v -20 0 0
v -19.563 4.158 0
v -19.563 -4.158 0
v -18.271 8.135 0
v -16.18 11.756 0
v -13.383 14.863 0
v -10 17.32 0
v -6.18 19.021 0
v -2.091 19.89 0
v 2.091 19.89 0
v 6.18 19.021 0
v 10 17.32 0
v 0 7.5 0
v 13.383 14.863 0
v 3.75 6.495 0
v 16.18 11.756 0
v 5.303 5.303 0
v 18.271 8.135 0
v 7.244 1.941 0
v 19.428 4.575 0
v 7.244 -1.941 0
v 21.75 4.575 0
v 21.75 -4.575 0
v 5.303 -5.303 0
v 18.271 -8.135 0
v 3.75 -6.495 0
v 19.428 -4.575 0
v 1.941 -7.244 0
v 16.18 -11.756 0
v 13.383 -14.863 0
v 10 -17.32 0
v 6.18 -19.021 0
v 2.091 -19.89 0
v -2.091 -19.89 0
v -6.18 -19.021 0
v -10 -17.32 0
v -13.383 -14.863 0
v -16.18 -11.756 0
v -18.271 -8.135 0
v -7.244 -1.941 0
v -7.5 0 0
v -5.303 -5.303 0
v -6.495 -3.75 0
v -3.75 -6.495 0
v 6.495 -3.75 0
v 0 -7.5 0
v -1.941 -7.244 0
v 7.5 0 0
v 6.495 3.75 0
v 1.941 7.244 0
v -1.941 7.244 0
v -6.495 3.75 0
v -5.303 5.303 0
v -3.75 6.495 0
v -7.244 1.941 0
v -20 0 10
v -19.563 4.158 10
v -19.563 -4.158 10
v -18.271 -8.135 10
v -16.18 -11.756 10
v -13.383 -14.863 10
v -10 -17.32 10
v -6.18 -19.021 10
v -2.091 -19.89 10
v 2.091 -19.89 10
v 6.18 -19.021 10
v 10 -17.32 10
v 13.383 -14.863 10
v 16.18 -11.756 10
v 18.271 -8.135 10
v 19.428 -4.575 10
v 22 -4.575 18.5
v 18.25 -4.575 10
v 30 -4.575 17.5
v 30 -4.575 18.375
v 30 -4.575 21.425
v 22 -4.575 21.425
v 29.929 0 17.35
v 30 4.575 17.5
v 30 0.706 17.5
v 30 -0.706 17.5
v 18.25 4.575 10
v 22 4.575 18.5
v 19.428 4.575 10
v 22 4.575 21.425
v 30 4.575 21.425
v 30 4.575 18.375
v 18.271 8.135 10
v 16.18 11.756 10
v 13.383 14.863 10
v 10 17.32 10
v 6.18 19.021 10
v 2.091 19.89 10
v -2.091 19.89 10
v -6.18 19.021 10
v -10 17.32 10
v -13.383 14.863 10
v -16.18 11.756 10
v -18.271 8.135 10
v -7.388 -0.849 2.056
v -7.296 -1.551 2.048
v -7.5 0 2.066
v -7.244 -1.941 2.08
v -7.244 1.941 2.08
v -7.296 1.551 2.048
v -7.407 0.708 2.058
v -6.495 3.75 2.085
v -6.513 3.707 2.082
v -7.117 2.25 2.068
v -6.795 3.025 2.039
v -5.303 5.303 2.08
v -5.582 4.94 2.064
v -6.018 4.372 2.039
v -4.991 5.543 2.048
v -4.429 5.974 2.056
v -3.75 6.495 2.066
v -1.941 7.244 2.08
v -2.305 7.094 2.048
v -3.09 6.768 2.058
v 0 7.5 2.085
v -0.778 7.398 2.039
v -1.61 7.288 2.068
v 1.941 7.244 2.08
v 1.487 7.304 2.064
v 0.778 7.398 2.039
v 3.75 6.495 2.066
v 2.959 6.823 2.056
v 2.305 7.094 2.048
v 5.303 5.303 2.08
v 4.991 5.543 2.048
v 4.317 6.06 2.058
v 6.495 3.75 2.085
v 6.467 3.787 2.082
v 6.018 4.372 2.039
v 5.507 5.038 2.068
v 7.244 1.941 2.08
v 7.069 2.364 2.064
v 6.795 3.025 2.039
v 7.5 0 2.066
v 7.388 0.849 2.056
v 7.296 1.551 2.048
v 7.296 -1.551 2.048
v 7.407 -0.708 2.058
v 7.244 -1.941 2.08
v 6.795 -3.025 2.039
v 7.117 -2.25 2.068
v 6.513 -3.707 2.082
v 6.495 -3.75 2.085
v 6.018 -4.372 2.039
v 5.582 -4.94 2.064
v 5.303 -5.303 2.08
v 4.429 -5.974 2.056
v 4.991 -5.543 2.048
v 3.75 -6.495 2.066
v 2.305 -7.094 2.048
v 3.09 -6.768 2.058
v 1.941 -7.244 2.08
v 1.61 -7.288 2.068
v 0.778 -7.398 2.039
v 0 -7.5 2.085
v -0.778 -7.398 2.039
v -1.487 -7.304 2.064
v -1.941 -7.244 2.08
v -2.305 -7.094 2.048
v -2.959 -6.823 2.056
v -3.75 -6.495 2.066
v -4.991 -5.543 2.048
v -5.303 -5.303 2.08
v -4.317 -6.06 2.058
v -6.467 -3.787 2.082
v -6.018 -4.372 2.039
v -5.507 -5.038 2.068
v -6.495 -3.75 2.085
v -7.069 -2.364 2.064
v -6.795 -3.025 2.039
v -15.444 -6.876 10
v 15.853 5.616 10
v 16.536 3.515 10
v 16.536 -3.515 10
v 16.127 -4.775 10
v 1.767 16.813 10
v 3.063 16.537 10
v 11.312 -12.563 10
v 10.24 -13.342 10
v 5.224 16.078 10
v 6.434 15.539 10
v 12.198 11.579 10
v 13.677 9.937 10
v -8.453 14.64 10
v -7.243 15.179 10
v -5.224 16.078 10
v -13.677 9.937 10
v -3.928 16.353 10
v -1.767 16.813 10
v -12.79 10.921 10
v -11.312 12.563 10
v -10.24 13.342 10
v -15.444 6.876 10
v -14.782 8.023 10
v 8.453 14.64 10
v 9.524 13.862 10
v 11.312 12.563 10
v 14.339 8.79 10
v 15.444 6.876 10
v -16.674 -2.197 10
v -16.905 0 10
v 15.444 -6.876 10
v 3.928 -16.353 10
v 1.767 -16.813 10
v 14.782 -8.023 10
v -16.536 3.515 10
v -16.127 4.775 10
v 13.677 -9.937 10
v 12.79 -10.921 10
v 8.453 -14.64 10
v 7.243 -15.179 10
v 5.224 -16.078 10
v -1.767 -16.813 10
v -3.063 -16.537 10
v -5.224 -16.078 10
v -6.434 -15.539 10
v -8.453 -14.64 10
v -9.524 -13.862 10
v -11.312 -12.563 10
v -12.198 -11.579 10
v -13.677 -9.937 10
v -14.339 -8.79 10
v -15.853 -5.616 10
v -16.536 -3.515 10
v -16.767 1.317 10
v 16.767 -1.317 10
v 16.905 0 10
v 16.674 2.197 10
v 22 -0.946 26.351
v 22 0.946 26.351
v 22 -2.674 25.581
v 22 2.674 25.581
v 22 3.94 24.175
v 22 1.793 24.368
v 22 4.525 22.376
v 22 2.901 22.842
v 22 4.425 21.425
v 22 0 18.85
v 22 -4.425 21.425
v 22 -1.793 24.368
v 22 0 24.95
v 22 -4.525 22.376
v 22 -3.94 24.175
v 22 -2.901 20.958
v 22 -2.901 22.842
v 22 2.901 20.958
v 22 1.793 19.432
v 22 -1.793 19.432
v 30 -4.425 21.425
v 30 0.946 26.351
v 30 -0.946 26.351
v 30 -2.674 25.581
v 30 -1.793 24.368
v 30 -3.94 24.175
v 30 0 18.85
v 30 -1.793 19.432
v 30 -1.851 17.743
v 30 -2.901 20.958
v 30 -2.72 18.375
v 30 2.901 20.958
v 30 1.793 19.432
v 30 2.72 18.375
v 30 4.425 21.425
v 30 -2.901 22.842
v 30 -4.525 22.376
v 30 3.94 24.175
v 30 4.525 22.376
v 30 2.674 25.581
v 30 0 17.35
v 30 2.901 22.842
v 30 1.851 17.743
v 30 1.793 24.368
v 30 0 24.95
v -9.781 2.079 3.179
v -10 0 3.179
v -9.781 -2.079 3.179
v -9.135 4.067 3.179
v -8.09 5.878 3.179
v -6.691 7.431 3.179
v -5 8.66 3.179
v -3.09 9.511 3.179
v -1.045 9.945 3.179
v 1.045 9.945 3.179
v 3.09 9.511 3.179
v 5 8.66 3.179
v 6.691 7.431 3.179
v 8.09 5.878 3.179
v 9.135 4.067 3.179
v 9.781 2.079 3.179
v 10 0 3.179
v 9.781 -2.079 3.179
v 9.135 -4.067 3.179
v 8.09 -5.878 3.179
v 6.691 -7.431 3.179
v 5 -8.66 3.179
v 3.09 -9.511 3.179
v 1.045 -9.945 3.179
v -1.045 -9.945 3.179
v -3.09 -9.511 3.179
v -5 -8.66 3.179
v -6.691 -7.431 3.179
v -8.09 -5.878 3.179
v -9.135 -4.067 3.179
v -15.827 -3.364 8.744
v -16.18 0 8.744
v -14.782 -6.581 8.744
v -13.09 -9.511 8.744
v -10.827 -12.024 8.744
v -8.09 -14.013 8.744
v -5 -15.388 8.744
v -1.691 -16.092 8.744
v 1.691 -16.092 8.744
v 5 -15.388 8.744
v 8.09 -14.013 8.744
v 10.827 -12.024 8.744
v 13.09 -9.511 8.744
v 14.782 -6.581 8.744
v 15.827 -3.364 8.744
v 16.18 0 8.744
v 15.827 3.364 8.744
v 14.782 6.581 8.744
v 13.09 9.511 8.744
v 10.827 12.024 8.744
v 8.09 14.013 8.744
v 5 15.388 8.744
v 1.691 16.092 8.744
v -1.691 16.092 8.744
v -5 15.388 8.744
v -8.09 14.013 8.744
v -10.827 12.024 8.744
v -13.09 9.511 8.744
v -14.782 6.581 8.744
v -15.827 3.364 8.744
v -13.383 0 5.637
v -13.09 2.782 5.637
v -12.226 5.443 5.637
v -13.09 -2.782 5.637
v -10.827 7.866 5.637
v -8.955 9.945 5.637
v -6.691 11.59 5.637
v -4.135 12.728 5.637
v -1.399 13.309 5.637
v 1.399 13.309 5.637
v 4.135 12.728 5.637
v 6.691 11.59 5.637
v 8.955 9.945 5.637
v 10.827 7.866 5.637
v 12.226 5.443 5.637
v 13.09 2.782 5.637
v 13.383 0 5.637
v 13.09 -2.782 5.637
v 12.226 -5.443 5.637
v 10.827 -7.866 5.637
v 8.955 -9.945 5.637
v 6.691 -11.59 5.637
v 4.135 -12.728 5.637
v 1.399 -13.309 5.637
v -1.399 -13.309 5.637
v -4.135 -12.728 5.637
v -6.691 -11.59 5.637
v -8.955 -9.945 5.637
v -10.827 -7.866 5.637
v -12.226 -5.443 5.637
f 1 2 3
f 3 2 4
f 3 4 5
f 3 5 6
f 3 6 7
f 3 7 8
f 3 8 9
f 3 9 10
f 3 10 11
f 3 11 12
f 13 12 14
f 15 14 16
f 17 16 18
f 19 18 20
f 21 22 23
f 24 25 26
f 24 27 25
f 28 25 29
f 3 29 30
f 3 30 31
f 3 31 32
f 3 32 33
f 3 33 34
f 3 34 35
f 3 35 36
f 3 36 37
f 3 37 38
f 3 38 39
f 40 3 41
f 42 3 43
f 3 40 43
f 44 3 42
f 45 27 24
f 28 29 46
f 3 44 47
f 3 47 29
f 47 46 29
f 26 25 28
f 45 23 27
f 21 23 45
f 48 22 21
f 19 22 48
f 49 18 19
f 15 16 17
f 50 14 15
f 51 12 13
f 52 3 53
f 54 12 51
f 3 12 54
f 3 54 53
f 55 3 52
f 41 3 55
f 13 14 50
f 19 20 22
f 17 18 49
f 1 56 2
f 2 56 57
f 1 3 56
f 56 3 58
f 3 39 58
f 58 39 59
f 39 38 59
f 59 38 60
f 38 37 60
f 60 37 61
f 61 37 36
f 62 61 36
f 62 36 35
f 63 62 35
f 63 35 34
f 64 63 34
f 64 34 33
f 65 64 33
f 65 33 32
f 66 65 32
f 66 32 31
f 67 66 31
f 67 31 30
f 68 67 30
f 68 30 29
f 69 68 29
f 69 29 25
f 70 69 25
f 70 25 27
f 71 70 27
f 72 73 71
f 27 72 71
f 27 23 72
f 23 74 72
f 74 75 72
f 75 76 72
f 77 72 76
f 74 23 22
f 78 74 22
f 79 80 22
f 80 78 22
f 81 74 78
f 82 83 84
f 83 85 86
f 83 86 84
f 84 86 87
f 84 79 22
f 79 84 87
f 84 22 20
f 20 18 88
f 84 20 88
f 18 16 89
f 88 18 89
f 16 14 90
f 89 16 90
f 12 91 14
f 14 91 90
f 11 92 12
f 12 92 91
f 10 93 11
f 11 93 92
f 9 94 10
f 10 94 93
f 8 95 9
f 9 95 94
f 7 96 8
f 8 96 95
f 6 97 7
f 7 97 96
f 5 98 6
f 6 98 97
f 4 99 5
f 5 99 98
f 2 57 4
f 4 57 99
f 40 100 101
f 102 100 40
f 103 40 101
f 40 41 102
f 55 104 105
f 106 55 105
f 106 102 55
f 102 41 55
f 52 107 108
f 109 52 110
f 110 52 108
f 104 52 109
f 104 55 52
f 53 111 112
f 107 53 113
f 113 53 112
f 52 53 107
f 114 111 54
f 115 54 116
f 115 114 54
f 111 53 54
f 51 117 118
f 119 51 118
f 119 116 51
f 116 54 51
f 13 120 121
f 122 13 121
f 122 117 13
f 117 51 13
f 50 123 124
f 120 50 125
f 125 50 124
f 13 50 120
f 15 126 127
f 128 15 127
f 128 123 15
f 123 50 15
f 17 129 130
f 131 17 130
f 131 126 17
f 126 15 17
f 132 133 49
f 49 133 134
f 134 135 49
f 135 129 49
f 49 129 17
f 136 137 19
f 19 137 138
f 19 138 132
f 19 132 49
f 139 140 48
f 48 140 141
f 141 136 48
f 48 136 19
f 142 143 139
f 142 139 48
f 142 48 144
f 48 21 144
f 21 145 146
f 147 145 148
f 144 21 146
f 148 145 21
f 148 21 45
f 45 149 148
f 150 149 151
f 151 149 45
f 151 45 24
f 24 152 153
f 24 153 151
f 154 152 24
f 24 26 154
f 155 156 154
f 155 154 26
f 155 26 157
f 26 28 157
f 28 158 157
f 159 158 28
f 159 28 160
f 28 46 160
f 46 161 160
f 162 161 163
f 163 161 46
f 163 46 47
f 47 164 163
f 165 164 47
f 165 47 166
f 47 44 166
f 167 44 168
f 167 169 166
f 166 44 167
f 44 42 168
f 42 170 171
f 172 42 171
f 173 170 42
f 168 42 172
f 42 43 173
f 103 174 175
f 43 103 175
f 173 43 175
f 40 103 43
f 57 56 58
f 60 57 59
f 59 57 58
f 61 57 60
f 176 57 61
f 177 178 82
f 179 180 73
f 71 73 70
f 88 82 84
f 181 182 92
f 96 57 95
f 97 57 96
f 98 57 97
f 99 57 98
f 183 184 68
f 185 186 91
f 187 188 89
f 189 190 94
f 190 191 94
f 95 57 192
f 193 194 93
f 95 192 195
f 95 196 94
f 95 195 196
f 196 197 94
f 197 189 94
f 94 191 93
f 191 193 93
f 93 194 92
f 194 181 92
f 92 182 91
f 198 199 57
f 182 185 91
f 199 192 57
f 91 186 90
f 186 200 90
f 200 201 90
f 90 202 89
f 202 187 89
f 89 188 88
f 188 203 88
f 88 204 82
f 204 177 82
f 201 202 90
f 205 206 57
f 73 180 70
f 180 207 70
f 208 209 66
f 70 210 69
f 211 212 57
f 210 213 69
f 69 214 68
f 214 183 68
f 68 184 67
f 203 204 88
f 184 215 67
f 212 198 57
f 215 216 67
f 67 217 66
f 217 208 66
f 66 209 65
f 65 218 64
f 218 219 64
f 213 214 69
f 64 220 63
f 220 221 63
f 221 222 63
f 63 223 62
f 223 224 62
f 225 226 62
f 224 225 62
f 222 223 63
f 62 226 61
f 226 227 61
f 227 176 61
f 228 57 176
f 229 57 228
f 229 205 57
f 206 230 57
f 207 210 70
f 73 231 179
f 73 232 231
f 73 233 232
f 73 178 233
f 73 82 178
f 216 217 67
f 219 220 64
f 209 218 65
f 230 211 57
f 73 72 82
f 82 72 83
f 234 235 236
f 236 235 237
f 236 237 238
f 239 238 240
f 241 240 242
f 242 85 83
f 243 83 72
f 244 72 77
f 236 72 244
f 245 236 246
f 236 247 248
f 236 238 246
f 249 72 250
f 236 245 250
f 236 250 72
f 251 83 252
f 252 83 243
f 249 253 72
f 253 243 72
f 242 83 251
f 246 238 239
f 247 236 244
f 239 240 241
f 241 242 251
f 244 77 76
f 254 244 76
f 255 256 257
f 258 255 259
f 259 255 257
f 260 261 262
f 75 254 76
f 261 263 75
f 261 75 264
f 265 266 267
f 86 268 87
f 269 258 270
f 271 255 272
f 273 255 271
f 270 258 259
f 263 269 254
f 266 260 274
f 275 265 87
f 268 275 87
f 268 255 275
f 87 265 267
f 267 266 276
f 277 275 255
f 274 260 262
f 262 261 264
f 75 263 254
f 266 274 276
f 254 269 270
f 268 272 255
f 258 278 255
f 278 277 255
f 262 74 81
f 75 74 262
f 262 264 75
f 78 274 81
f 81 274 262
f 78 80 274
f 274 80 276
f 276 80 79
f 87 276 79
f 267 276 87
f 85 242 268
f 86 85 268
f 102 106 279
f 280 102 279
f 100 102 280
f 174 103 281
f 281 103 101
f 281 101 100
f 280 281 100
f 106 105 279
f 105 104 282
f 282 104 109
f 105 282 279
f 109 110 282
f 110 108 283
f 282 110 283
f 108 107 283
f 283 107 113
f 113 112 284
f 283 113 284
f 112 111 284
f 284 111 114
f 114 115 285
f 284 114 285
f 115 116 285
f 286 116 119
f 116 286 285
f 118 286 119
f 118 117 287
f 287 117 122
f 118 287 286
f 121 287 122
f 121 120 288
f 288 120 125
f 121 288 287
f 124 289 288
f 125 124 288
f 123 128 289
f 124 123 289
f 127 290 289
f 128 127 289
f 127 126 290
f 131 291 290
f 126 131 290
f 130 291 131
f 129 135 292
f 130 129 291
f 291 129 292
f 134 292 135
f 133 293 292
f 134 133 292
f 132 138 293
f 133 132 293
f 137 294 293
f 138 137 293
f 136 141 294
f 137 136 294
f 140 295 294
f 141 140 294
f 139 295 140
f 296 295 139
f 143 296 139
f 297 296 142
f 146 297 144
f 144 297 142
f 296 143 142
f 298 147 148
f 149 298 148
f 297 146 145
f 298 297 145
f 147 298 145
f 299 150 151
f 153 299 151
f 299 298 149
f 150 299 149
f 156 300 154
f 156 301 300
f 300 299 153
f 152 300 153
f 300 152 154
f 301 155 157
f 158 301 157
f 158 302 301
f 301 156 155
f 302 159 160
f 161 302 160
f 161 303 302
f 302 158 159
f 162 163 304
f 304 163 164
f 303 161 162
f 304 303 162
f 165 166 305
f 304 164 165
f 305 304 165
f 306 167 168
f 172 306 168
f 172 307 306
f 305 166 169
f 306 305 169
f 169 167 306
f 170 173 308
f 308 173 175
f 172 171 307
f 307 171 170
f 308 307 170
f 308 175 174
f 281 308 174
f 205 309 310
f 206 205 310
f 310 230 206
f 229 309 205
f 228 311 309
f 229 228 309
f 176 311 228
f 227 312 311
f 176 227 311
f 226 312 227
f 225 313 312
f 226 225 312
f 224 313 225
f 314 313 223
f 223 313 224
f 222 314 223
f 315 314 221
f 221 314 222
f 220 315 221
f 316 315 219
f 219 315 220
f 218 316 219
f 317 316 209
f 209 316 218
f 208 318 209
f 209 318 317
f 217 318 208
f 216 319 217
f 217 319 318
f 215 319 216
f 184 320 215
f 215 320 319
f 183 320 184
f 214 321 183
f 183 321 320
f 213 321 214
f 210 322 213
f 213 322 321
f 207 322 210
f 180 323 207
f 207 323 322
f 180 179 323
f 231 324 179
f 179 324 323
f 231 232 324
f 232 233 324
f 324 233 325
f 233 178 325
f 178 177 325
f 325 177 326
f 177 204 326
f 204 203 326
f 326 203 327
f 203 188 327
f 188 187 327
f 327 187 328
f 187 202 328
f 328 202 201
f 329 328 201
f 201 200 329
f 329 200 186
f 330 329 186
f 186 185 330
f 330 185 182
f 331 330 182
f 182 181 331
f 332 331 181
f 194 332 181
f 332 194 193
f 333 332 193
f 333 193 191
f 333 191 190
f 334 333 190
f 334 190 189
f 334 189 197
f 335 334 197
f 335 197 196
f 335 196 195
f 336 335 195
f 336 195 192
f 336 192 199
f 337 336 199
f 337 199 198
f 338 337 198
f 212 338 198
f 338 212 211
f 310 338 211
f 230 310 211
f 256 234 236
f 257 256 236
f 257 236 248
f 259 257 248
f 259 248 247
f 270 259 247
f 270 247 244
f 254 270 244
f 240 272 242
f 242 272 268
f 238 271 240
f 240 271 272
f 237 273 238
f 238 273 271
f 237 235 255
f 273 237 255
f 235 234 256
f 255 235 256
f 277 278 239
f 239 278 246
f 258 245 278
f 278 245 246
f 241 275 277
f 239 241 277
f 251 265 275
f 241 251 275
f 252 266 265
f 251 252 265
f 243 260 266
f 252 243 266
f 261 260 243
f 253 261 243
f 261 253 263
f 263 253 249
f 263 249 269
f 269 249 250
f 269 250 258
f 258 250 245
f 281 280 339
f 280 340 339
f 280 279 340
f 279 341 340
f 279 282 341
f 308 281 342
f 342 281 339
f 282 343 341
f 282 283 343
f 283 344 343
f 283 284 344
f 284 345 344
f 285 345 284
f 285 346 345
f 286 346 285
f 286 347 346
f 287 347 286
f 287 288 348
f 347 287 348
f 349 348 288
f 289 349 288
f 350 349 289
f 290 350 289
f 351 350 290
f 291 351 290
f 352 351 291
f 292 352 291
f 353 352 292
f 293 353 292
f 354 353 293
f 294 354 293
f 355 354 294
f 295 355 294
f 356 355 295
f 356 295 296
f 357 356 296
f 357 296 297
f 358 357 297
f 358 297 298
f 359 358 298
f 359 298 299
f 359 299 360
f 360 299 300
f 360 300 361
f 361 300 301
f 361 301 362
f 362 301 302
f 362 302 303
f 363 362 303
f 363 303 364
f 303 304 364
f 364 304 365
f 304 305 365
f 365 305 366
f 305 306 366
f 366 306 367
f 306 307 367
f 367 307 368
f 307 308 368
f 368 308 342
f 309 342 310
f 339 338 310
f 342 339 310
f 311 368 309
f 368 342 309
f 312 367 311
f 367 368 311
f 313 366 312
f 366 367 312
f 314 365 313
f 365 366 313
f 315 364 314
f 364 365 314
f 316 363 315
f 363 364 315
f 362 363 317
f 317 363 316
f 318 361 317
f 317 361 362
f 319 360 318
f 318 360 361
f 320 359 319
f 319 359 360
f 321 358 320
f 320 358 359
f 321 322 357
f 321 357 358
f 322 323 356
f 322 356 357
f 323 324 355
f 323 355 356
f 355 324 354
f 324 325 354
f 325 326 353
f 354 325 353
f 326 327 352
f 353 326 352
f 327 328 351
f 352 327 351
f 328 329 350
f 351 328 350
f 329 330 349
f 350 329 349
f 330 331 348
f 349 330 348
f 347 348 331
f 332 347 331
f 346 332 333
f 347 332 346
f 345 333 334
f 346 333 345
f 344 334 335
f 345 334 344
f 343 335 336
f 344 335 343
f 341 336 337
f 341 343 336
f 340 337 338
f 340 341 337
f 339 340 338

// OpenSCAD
// measurements

ball_diameter=40;
sled_width=73.5;
material_thickness=4.8;
board_height=18;
laser_tube_width=6.1;
laser_tube_length=8;

module laser() {
	difference() {
		cylinder(d=ball_diameter,h=10);
		translate([0,0,20.5])
			sphere(d=ball_diameter);
		translate([0,0,-2.5])
			cylinder(d=15,h=5);
	}
	hull() {
		translate([20,0,5])
			cube([3.5,laser_tube_width*1.5,10],center=true);
		translate([26,0,18])
			cube([8,laser_tube_width*1.5,1],center=true);
	}
	translate([22,0,21.9])
		tube();
	
}

module tube() {
	rotate([0,90])
	difference() {
		union() {
			cylinder(d=laser_tube_width+3,h=laser_tube_length);
			translate([2,0,laser_tube_length/2])
			cube([laser_tube_width/2,laser_tube_width*1.5,laser_tube_length],center=true);
		}
		translate([0,0,-1])
			cylinder(d=laser_tube_width,h=laser_tube_length+2);
	}
}

module base() {
	difference() {
		translate([0,0,1.3])
		cube([sled_width+5,15,12.5],center=true);
		cube([sled_width,20,10],center=true);
	}
	cube([sled_width-(material_thickness*2),15,10],center=true);
}


laser();
